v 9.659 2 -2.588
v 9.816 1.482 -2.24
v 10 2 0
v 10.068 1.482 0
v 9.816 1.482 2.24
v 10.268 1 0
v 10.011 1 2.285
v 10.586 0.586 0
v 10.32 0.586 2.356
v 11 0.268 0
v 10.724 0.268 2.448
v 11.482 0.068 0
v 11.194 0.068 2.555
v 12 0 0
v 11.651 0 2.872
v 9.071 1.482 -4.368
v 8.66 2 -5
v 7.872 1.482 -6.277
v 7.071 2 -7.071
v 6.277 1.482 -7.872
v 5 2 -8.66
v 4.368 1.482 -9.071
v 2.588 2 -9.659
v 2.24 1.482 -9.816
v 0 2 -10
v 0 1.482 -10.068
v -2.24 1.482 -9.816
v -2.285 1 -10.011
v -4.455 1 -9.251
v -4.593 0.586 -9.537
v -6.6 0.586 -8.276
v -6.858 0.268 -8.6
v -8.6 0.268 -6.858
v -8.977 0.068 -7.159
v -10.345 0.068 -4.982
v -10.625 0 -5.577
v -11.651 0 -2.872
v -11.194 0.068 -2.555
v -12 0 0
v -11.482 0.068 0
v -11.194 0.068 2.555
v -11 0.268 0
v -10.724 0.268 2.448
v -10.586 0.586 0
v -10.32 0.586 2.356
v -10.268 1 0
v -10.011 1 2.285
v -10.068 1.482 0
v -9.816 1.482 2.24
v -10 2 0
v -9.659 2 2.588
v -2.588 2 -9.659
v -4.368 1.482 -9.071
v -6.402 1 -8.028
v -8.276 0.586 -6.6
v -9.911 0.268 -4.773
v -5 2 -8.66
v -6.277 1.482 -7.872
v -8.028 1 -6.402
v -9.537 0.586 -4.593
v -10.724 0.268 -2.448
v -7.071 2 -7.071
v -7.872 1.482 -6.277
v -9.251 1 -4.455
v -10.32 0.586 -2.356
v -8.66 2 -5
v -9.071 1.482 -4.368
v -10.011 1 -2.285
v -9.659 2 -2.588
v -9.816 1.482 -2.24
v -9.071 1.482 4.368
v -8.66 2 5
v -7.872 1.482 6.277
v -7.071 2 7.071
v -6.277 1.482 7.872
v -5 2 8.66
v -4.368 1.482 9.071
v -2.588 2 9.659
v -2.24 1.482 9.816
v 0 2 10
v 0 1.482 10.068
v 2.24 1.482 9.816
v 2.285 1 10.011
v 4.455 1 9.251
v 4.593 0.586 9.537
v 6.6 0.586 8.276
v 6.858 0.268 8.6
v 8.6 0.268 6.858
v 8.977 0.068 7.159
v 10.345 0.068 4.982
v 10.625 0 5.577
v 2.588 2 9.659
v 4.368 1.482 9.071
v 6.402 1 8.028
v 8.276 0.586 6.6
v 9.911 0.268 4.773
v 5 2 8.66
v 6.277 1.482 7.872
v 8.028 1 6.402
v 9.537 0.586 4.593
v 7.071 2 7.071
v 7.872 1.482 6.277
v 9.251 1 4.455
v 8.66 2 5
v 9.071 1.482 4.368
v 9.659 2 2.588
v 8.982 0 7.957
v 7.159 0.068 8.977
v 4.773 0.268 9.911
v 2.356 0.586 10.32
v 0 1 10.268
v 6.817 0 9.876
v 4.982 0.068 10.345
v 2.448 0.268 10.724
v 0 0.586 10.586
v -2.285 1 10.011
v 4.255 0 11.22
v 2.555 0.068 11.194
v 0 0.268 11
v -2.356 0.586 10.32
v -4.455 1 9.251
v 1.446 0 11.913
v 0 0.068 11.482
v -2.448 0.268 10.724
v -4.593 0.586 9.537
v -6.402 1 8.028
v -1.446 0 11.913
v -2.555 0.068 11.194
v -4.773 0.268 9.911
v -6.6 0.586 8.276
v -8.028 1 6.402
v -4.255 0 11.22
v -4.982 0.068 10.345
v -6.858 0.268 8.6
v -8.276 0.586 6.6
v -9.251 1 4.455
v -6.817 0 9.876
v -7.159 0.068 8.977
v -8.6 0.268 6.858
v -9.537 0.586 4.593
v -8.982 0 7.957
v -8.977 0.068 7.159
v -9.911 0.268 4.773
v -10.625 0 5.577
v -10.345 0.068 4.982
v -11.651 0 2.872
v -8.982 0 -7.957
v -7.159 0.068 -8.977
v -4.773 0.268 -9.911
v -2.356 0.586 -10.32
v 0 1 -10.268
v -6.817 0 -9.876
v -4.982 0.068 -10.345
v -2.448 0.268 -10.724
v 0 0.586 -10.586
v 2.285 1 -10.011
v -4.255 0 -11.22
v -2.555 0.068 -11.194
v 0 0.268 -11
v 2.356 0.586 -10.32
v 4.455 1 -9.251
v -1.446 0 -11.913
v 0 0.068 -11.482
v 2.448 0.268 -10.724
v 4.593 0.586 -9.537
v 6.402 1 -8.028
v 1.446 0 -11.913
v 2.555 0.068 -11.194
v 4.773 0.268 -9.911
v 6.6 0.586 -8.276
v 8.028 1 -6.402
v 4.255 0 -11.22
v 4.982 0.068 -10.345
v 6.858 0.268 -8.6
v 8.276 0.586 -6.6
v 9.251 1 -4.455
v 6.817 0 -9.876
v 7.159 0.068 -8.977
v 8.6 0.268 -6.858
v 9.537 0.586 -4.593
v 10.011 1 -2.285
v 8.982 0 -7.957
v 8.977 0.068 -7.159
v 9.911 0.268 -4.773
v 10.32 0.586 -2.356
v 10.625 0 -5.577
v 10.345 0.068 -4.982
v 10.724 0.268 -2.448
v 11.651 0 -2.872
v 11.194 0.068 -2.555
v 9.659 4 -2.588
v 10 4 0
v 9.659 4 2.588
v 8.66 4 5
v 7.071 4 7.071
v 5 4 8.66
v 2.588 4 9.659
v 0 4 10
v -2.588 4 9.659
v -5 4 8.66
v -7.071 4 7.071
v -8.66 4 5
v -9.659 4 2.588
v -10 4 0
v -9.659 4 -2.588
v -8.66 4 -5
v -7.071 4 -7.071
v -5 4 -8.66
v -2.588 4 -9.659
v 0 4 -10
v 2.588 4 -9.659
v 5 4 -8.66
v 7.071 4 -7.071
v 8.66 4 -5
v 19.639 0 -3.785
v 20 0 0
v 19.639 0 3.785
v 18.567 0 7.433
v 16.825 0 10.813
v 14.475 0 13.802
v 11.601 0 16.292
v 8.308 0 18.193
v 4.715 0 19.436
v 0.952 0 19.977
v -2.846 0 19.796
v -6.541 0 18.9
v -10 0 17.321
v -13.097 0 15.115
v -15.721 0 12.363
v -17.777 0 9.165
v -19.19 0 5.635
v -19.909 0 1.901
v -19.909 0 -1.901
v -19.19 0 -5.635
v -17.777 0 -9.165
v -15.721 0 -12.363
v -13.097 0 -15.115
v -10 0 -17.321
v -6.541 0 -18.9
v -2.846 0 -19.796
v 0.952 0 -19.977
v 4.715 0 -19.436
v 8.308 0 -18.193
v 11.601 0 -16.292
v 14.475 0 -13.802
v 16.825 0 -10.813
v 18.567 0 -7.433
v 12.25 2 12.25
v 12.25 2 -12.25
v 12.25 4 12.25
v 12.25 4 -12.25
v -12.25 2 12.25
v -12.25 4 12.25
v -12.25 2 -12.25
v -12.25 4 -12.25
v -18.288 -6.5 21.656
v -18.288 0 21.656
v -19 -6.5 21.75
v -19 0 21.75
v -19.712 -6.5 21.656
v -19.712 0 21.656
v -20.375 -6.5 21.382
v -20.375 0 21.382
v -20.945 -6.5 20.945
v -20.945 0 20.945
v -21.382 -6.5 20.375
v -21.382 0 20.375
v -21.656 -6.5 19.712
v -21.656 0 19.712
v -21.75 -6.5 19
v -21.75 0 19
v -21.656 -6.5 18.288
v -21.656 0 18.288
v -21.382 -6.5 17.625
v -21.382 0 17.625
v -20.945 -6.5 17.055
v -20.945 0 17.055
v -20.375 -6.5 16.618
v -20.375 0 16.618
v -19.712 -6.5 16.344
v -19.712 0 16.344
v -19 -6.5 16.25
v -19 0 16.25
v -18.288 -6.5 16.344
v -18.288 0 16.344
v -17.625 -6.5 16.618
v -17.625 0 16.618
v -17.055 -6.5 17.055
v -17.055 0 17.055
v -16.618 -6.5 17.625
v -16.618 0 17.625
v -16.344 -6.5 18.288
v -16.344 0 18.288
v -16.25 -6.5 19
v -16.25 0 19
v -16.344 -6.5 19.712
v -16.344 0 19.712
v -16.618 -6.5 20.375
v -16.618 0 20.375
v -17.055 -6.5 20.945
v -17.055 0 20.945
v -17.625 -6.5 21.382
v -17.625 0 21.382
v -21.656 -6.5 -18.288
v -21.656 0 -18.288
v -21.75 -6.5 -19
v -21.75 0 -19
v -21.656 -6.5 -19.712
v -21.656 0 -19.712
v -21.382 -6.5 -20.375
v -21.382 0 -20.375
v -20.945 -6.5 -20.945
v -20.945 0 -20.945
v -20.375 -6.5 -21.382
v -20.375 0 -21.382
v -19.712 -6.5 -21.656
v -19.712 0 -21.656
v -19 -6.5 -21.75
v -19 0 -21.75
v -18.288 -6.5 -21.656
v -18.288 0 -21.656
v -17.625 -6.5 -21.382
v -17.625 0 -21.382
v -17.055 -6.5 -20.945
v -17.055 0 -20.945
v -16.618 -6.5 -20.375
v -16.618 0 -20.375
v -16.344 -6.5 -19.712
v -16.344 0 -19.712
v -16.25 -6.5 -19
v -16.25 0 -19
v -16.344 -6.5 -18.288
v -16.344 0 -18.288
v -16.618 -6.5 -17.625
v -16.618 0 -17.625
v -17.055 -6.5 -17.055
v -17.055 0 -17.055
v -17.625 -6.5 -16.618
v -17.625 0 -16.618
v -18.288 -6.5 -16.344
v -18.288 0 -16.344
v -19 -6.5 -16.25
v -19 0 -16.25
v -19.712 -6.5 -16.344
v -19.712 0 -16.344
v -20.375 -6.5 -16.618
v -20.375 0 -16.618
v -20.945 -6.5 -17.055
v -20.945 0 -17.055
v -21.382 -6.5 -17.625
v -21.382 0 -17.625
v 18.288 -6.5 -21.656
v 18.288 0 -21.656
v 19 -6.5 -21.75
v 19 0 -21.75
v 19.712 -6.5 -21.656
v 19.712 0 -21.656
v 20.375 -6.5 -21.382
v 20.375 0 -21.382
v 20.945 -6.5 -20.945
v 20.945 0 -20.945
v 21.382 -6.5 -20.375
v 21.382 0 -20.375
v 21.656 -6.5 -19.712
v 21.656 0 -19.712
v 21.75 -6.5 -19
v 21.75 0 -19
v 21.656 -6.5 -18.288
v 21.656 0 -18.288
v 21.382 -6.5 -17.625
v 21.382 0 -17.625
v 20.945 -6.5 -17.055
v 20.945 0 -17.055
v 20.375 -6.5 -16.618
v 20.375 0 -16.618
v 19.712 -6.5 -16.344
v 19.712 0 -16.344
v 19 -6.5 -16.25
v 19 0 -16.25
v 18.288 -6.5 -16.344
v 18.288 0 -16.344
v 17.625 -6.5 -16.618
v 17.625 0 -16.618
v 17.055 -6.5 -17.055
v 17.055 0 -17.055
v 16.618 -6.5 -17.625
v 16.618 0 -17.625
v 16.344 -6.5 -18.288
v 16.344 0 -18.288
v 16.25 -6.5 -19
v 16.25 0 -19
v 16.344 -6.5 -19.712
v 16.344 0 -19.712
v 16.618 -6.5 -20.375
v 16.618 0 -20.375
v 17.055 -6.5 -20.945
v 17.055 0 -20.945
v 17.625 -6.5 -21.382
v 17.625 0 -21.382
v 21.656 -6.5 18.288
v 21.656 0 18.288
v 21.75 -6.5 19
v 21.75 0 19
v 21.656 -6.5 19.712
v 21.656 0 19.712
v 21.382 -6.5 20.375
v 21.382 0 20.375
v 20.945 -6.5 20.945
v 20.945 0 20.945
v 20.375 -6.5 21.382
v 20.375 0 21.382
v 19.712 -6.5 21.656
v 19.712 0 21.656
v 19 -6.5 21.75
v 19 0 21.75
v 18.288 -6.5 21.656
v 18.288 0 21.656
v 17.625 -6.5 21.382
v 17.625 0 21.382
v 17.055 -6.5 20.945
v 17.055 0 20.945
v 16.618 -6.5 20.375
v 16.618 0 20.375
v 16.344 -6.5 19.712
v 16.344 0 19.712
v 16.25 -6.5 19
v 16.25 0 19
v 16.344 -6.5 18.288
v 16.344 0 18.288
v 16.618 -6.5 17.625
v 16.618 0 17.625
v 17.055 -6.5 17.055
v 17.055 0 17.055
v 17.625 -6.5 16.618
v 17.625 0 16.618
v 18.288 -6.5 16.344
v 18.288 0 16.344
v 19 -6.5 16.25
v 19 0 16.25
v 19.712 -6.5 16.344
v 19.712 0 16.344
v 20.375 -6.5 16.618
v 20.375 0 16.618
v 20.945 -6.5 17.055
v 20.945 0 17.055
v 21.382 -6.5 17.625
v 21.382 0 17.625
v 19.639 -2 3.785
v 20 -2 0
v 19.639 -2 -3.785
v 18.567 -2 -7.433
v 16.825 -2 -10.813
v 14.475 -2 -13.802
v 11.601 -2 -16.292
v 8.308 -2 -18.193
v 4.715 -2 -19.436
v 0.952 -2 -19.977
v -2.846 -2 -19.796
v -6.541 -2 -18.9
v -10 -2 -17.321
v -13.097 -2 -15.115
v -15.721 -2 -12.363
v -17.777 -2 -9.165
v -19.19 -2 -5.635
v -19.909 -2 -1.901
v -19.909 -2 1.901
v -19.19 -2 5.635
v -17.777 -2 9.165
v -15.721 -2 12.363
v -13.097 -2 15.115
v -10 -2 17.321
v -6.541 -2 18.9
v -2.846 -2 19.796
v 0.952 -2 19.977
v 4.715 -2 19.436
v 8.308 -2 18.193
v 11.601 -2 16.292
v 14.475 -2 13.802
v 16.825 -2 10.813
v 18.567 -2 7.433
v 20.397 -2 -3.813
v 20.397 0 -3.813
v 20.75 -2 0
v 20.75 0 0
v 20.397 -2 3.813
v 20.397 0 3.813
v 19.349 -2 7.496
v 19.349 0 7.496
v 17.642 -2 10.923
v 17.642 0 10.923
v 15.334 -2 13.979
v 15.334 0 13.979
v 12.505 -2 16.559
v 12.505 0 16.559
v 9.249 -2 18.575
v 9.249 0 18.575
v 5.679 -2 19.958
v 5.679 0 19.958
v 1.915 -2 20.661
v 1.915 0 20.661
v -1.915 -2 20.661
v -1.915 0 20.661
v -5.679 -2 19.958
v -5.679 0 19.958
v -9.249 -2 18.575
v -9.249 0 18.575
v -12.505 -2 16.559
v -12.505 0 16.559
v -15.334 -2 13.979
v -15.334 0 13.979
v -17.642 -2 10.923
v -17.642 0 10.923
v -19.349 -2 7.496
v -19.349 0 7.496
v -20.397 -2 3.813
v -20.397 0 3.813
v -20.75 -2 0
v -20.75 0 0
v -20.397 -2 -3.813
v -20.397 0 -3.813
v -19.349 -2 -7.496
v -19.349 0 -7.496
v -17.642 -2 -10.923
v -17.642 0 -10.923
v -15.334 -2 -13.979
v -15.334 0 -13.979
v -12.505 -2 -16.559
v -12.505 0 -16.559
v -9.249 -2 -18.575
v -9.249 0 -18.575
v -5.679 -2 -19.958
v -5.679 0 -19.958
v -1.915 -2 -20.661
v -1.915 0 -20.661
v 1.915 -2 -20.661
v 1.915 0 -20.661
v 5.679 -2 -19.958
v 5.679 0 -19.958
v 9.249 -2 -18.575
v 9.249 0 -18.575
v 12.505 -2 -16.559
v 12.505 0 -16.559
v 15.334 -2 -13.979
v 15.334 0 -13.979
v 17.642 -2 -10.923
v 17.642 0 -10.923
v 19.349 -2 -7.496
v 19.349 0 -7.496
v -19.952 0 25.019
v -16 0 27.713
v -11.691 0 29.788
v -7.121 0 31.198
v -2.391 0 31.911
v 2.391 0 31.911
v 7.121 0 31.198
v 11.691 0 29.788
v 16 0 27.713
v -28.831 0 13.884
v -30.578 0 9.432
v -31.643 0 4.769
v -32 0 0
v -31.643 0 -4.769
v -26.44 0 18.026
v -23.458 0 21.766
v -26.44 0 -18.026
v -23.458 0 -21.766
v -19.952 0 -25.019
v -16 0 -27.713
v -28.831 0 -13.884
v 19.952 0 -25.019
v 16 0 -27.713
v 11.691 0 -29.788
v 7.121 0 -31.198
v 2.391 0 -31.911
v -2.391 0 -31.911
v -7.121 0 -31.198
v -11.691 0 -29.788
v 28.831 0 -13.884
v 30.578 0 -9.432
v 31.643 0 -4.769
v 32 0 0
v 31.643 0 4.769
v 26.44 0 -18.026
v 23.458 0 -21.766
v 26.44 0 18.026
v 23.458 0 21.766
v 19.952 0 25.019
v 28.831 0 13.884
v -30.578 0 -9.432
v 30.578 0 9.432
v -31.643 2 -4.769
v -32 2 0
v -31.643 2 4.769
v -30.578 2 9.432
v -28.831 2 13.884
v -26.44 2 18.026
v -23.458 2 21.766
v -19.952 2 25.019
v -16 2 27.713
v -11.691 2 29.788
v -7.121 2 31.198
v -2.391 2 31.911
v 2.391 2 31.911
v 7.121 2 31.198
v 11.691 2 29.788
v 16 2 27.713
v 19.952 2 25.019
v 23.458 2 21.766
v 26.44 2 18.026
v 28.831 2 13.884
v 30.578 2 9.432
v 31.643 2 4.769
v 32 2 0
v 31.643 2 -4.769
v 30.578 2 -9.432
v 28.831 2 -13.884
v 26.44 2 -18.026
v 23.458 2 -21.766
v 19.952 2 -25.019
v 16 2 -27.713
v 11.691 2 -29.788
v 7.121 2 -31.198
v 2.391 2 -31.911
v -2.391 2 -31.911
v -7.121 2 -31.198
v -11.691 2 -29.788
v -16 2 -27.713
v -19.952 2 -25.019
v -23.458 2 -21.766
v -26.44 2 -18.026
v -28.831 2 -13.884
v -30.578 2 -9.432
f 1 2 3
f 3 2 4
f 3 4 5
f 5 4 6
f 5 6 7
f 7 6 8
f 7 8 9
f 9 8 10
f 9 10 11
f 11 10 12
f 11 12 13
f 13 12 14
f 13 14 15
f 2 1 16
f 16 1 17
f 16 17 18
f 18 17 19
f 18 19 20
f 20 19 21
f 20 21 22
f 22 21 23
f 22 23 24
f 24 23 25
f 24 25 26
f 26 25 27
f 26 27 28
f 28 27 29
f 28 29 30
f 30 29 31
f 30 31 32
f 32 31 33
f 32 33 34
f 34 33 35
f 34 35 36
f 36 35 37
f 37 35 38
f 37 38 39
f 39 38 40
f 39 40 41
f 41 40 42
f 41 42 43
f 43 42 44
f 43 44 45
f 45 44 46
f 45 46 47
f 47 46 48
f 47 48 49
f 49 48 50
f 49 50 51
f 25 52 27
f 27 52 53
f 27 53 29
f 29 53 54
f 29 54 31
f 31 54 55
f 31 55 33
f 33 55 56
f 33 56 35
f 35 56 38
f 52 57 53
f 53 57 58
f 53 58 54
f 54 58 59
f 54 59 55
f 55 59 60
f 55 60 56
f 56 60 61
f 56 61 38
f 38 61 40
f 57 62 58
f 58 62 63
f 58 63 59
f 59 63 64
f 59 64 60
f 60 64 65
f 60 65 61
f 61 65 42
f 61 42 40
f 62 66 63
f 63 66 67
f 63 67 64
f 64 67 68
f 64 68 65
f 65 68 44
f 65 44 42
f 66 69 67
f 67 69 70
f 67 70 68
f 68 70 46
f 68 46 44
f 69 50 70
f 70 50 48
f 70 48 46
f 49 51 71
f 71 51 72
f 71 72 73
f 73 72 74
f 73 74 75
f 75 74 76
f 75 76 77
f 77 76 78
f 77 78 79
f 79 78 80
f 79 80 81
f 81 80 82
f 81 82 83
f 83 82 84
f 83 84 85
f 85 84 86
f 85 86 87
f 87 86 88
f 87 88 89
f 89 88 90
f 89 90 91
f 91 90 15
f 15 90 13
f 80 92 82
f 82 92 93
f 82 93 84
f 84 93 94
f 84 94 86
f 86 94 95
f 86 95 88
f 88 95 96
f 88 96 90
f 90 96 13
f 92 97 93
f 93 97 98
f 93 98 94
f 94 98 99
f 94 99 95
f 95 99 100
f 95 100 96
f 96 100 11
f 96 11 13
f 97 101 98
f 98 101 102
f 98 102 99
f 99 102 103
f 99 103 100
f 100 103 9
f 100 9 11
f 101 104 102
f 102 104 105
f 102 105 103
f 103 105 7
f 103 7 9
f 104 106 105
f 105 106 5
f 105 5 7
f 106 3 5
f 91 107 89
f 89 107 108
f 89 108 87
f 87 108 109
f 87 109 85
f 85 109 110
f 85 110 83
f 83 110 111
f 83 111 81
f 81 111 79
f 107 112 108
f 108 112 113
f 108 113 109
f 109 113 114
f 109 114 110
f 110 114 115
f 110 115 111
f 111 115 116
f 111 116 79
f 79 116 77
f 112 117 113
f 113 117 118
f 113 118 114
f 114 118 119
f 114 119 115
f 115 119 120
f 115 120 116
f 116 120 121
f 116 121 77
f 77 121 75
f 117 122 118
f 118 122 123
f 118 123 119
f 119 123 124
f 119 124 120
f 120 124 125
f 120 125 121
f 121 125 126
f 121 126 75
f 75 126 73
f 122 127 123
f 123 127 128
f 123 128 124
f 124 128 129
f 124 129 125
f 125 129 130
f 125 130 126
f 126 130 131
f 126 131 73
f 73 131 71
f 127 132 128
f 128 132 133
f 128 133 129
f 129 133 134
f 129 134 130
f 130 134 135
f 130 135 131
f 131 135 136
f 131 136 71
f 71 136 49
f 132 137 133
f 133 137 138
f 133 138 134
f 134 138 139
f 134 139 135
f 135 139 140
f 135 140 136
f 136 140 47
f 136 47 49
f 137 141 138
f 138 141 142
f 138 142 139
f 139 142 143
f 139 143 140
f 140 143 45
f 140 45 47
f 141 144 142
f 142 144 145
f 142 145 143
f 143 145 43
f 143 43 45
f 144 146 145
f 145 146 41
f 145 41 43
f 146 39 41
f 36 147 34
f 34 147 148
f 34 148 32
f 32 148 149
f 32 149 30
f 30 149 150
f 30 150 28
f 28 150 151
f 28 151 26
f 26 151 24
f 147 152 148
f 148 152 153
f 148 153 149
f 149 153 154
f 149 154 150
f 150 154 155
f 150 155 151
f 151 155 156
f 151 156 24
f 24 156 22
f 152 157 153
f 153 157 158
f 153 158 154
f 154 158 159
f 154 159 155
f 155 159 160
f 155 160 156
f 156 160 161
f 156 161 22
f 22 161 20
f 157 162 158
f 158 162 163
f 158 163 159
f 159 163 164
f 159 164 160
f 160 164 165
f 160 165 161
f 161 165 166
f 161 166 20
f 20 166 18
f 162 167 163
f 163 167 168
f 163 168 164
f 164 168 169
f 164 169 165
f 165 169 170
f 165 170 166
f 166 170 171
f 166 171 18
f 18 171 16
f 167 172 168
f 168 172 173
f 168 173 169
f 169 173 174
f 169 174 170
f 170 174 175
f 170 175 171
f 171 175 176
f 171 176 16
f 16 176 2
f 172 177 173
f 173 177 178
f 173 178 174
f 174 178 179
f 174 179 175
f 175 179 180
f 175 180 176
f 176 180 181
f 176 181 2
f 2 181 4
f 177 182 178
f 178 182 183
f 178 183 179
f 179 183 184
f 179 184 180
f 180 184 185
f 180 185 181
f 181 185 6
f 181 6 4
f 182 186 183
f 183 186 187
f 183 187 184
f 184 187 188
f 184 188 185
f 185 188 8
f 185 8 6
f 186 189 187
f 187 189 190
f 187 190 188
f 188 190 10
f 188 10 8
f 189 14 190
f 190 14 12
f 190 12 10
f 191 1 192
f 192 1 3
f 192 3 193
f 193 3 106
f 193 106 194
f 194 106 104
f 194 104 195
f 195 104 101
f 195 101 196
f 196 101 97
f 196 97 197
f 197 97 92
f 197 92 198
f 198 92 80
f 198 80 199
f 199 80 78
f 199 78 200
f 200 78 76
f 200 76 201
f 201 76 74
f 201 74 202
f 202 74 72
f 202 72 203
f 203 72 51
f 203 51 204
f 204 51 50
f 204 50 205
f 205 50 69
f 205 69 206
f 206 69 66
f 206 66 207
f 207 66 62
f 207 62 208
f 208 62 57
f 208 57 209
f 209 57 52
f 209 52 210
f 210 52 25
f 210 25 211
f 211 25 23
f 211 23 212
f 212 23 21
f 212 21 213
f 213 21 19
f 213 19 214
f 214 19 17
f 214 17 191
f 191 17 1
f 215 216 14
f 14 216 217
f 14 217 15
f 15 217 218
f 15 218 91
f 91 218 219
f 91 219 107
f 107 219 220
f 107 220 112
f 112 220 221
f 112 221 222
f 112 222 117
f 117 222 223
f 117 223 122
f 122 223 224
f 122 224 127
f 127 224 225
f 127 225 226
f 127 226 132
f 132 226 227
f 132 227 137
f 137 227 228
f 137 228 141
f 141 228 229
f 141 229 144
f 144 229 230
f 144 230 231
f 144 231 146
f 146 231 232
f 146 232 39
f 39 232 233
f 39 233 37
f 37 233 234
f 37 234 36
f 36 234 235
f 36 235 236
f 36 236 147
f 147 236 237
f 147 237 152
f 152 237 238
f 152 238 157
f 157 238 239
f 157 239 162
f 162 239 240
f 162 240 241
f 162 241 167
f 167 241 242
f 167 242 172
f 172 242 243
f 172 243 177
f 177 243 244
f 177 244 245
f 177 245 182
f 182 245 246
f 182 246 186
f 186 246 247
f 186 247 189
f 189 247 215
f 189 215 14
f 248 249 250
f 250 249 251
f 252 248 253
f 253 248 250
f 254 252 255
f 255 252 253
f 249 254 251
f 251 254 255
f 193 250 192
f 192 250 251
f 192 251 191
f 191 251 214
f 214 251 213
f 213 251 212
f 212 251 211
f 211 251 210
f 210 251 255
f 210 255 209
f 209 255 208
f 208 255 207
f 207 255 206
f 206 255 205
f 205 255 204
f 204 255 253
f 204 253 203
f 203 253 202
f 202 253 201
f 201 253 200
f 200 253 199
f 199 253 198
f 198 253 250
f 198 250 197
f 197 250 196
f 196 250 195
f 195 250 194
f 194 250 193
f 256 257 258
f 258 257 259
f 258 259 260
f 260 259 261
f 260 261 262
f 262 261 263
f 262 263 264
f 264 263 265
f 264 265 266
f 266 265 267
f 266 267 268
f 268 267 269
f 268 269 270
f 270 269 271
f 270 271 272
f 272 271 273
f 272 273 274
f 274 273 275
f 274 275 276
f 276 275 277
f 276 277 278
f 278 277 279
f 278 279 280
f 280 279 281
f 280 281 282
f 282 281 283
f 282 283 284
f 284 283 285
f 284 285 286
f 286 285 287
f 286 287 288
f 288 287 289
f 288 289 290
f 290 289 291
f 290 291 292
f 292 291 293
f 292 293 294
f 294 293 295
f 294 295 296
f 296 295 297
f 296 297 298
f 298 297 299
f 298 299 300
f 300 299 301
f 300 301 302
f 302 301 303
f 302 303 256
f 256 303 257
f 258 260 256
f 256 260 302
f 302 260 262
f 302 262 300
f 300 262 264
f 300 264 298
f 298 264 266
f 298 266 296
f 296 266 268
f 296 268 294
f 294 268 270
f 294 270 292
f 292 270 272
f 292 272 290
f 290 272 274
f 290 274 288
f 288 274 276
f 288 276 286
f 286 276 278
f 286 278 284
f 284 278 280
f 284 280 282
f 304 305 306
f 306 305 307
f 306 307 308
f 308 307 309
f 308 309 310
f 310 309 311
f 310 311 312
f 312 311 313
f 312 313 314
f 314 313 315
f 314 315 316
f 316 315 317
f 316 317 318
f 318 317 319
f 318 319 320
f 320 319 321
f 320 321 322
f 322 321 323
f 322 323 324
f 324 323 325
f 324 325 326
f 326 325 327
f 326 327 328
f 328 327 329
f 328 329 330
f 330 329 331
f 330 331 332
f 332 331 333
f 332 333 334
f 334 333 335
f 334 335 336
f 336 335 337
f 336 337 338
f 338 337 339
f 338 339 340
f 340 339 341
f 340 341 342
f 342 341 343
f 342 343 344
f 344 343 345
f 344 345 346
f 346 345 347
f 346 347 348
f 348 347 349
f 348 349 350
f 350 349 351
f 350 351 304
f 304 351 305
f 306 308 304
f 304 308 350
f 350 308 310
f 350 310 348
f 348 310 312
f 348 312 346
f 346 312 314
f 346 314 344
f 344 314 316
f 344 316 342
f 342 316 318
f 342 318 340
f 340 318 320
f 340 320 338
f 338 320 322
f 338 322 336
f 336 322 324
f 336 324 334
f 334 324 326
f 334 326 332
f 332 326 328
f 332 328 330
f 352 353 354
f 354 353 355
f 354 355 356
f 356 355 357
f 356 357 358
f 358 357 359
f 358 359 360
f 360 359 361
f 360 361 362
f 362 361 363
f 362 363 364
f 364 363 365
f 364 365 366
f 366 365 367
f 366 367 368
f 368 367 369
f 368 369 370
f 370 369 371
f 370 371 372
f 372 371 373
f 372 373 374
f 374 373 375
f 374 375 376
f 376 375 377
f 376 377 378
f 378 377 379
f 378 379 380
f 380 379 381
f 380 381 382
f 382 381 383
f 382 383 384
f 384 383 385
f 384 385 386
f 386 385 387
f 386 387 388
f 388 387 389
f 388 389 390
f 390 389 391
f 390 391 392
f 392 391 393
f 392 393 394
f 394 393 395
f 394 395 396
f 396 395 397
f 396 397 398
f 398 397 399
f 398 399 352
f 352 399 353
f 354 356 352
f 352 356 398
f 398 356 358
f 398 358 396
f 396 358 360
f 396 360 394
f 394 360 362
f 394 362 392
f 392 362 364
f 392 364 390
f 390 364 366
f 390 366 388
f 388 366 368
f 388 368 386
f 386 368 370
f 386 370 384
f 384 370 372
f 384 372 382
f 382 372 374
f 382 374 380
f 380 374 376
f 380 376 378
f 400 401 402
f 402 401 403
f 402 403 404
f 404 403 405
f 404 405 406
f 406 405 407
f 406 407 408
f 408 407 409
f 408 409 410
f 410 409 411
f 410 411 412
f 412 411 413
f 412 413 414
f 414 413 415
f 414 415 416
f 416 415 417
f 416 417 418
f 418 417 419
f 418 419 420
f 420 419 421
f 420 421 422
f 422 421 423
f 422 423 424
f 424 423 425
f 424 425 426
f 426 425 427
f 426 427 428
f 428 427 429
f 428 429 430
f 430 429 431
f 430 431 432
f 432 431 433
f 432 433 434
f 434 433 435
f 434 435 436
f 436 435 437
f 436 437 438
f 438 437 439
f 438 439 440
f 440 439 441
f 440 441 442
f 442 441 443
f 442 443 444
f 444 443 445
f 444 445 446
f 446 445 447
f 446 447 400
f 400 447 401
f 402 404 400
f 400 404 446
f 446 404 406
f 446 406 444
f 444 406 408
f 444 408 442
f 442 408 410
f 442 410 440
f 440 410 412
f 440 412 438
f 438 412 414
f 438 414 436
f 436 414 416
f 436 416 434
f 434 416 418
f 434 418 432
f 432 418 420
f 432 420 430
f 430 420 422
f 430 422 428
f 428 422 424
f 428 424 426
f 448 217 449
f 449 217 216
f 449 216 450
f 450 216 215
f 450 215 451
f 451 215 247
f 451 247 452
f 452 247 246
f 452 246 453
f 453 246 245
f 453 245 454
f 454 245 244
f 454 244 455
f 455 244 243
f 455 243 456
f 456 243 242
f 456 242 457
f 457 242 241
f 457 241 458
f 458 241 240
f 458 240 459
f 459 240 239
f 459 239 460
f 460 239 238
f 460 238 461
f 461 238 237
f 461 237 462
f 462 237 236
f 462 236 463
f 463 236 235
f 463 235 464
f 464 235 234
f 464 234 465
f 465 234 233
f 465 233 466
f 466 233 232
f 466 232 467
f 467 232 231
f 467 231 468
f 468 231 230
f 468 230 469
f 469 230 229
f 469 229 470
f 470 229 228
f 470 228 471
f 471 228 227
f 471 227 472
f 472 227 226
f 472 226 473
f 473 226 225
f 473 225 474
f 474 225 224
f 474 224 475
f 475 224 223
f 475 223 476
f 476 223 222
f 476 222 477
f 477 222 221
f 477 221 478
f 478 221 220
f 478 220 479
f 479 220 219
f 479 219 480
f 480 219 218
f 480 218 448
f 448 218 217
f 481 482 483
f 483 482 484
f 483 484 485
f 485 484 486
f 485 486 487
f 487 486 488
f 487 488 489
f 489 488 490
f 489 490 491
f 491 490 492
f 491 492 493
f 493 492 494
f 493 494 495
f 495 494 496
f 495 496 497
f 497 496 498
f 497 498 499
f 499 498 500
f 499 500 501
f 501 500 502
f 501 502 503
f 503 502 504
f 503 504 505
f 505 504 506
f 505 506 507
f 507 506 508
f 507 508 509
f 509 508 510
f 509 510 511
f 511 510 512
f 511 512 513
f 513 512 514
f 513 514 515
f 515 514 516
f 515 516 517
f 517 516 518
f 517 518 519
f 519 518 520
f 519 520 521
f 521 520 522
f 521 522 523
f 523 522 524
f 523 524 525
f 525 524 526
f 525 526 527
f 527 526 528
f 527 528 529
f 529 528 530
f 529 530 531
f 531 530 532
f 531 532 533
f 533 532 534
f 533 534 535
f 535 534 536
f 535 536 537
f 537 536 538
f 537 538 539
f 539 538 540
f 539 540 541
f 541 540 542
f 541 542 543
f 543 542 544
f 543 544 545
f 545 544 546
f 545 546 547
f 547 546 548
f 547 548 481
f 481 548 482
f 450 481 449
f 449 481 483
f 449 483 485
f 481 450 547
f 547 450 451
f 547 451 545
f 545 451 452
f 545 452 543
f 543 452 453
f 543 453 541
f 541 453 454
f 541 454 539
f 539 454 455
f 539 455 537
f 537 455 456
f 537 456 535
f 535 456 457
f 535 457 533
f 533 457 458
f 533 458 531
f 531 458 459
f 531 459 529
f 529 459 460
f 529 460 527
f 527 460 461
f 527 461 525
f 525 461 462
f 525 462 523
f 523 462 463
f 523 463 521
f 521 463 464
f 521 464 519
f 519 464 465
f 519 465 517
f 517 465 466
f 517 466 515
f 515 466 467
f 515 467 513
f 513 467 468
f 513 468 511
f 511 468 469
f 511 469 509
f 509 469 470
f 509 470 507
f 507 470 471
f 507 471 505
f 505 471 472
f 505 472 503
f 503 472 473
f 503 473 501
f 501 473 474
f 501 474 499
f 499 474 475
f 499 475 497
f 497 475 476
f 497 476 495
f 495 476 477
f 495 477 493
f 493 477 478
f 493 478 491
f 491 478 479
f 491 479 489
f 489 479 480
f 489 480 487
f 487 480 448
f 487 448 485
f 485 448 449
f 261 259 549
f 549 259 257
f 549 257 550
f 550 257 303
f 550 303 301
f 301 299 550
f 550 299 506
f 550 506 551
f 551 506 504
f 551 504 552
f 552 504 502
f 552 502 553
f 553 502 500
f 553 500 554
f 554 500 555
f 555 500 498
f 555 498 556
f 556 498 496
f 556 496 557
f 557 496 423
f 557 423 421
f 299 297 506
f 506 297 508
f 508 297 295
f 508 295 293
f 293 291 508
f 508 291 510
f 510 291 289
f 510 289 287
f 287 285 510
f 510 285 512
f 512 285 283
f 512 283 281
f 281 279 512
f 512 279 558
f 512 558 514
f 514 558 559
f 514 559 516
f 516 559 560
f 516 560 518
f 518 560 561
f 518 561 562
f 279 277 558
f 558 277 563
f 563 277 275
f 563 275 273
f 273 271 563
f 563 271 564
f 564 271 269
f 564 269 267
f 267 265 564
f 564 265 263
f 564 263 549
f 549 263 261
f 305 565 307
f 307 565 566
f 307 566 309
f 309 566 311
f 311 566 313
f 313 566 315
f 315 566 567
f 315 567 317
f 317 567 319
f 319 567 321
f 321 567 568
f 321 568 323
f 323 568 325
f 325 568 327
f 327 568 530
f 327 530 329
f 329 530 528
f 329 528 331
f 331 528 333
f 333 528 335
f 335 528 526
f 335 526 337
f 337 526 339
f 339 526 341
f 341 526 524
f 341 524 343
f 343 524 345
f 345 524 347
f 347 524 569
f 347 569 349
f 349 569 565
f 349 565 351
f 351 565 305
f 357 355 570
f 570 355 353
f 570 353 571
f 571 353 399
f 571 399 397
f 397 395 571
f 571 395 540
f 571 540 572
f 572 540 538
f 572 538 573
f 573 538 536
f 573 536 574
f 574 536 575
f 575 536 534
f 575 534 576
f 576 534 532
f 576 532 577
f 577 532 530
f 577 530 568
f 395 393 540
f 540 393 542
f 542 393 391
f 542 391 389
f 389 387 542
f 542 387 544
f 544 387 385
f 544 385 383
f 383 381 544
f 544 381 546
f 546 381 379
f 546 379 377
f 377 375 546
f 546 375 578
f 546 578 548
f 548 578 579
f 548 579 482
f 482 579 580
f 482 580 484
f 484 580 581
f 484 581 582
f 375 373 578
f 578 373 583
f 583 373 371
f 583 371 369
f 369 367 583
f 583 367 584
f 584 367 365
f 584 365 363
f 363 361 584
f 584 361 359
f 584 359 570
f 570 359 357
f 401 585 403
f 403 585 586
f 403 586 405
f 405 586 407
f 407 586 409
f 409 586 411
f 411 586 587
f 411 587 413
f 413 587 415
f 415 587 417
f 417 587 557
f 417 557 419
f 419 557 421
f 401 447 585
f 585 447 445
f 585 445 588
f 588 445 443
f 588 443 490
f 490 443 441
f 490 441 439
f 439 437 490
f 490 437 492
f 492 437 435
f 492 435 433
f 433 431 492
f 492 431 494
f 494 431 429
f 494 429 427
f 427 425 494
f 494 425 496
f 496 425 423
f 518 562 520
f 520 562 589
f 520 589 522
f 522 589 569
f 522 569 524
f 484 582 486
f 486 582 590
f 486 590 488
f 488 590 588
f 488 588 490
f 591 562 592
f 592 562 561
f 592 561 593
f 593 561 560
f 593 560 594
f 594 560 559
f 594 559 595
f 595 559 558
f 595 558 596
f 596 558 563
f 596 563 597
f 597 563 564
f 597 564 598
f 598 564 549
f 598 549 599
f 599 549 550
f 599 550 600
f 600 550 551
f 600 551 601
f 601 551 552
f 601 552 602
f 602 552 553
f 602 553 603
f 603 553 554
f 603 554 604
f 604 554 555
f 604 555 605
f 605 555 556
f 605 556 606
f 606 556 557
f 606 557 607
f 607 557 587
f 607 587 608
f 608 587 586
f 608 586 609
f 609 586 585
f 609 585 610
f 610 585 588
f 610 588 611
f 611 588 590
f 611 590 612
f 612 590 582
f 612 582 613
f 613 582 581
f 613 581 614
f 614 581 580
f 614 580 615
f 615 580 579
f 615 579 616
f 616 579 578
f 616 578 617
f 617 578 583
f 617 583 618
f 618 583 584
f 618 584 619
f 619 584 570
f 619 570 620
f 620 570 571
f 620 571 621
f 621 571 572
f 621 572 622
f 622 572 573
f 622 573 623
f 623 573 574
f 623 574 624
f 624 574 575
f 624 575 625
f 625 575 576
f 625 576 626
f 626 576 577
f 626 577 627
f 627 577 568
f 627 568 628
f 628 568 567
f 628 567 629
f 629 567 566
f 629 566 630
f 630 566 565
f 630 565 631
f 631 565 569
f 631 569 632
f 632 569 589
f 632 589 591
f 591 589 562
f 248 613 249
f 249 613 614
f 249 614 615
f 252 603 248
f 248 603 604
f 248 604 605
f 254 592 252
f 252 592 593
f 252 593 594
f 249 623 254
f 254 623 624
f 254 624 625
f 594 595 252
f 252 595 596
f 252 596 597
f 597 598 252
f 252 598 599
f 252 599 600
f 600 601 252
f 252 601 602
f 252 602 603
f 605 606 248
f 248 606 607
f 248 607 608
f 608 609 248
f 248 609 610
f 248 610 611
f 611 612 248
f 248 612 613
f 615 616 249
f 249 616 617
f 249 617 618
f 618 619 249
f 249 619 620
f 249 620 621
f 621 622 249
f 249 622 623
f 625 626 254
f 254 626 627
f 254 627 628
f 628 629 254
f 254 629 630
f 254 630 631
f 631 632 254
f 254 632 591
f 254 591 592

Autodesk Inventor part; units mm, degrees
ref_plane "YZ Plane" through (0, 0, 0) normal (1, 0, 0) x (0, 1, 0)
ref_plane "XZ Plane" through (0, 0, 0) normal (0, 1, 0) x (-1, 0, 0)
ref_plane "XY Plane" through (0, 0, 0) normal (0, 0, 1) x (1, 0, 0)
sketch "Sketch1" plane through (0, 0, 0) normal (0, 1, 0) x (-1, 0, 0)
  circle A0 centre (0, 0) radius 32
  dimension "d0" = 64
extrude "Extrusion1" add sketch "Sketch1" along normal blind 2
sketch "Sketch2" plane through (0, 0, 0) normal (0, -1, 0) x (1, 0, 0)
  circle A0 centre (0, 0) radius 20.75
  circle A1 centre (0, 0) radius 20
  dimension "d3" = 41.5
  dimension "d4" = 40
extrude "Extrusion2" add sketch "Sketch2" along normal blind 2
sketch "Sketch4" plane through (0, 0, 0) normal (0, -1, 0) x (1, 0, 0)
  circle A0 centre (19, 19) radius 2.75
  point P0 (0, 0)
  dimension "d9" = 5.5
  dimension "d10" = 19
  dimension "d11" = 19
extrude "Extrusion4" add sketch "Sketch4" along normal blind 6.5
pattern_circular "Circular Pattern1" count 4 over 360 about axis through (0, -10, 0) along (0, 1, 0) of "Extrusion4"
sketch "Sketch5" plane through (0, 2, 0) normal (0, 1, 0) x (1, 0, 0)
  line L0 (-12.25, 12.25) -> (12.25, 12.25)
  line L1 (12.25, 12.25) -> (12.25, -12.25)
  line L2 (12.25, -12.25) -> (-12.25, -12.25)
  line L3 (-12.25, -12.25) -> (-12.25, 12.25)
  line L4 (-12.25, 12.25) -> (12.25, -12.25) construction
  line L5 (12.25, 12.25) -> (-12.25, -12.25) construction
  point P0 (0, 0)
  dimension "d17" = 24.5
  dimension "d18" = 24.5
extrude "Extrusion5" add sketch "Sketch5" along normal blind 2
sketch "Sketch6" plane through (0, 4, 0) normal (0, 1, 0) x (1, 0, 0)
  line L0 (12.25, 12.25) -> (-12.25, 12.25) projected
  line L1 (-12.25, 12.25) -> (-12.25, -12.25) projected
  line L2 (-12.25, -12.25) -> (12.25, -12.25) projected
  line L3 (12.25, -12.25) -> (12.25, 12.25) projected
  circle A0 centre (0, 0) radius 10
  dimension "d21" = 20
extrude "Extrusion6" cut sketch "Sketch6" against normal through all contours A0
fillet "Fillet1" radius 2 1 edges at (-10, 0, 0)
properties part number "pot_base_adapter2"
